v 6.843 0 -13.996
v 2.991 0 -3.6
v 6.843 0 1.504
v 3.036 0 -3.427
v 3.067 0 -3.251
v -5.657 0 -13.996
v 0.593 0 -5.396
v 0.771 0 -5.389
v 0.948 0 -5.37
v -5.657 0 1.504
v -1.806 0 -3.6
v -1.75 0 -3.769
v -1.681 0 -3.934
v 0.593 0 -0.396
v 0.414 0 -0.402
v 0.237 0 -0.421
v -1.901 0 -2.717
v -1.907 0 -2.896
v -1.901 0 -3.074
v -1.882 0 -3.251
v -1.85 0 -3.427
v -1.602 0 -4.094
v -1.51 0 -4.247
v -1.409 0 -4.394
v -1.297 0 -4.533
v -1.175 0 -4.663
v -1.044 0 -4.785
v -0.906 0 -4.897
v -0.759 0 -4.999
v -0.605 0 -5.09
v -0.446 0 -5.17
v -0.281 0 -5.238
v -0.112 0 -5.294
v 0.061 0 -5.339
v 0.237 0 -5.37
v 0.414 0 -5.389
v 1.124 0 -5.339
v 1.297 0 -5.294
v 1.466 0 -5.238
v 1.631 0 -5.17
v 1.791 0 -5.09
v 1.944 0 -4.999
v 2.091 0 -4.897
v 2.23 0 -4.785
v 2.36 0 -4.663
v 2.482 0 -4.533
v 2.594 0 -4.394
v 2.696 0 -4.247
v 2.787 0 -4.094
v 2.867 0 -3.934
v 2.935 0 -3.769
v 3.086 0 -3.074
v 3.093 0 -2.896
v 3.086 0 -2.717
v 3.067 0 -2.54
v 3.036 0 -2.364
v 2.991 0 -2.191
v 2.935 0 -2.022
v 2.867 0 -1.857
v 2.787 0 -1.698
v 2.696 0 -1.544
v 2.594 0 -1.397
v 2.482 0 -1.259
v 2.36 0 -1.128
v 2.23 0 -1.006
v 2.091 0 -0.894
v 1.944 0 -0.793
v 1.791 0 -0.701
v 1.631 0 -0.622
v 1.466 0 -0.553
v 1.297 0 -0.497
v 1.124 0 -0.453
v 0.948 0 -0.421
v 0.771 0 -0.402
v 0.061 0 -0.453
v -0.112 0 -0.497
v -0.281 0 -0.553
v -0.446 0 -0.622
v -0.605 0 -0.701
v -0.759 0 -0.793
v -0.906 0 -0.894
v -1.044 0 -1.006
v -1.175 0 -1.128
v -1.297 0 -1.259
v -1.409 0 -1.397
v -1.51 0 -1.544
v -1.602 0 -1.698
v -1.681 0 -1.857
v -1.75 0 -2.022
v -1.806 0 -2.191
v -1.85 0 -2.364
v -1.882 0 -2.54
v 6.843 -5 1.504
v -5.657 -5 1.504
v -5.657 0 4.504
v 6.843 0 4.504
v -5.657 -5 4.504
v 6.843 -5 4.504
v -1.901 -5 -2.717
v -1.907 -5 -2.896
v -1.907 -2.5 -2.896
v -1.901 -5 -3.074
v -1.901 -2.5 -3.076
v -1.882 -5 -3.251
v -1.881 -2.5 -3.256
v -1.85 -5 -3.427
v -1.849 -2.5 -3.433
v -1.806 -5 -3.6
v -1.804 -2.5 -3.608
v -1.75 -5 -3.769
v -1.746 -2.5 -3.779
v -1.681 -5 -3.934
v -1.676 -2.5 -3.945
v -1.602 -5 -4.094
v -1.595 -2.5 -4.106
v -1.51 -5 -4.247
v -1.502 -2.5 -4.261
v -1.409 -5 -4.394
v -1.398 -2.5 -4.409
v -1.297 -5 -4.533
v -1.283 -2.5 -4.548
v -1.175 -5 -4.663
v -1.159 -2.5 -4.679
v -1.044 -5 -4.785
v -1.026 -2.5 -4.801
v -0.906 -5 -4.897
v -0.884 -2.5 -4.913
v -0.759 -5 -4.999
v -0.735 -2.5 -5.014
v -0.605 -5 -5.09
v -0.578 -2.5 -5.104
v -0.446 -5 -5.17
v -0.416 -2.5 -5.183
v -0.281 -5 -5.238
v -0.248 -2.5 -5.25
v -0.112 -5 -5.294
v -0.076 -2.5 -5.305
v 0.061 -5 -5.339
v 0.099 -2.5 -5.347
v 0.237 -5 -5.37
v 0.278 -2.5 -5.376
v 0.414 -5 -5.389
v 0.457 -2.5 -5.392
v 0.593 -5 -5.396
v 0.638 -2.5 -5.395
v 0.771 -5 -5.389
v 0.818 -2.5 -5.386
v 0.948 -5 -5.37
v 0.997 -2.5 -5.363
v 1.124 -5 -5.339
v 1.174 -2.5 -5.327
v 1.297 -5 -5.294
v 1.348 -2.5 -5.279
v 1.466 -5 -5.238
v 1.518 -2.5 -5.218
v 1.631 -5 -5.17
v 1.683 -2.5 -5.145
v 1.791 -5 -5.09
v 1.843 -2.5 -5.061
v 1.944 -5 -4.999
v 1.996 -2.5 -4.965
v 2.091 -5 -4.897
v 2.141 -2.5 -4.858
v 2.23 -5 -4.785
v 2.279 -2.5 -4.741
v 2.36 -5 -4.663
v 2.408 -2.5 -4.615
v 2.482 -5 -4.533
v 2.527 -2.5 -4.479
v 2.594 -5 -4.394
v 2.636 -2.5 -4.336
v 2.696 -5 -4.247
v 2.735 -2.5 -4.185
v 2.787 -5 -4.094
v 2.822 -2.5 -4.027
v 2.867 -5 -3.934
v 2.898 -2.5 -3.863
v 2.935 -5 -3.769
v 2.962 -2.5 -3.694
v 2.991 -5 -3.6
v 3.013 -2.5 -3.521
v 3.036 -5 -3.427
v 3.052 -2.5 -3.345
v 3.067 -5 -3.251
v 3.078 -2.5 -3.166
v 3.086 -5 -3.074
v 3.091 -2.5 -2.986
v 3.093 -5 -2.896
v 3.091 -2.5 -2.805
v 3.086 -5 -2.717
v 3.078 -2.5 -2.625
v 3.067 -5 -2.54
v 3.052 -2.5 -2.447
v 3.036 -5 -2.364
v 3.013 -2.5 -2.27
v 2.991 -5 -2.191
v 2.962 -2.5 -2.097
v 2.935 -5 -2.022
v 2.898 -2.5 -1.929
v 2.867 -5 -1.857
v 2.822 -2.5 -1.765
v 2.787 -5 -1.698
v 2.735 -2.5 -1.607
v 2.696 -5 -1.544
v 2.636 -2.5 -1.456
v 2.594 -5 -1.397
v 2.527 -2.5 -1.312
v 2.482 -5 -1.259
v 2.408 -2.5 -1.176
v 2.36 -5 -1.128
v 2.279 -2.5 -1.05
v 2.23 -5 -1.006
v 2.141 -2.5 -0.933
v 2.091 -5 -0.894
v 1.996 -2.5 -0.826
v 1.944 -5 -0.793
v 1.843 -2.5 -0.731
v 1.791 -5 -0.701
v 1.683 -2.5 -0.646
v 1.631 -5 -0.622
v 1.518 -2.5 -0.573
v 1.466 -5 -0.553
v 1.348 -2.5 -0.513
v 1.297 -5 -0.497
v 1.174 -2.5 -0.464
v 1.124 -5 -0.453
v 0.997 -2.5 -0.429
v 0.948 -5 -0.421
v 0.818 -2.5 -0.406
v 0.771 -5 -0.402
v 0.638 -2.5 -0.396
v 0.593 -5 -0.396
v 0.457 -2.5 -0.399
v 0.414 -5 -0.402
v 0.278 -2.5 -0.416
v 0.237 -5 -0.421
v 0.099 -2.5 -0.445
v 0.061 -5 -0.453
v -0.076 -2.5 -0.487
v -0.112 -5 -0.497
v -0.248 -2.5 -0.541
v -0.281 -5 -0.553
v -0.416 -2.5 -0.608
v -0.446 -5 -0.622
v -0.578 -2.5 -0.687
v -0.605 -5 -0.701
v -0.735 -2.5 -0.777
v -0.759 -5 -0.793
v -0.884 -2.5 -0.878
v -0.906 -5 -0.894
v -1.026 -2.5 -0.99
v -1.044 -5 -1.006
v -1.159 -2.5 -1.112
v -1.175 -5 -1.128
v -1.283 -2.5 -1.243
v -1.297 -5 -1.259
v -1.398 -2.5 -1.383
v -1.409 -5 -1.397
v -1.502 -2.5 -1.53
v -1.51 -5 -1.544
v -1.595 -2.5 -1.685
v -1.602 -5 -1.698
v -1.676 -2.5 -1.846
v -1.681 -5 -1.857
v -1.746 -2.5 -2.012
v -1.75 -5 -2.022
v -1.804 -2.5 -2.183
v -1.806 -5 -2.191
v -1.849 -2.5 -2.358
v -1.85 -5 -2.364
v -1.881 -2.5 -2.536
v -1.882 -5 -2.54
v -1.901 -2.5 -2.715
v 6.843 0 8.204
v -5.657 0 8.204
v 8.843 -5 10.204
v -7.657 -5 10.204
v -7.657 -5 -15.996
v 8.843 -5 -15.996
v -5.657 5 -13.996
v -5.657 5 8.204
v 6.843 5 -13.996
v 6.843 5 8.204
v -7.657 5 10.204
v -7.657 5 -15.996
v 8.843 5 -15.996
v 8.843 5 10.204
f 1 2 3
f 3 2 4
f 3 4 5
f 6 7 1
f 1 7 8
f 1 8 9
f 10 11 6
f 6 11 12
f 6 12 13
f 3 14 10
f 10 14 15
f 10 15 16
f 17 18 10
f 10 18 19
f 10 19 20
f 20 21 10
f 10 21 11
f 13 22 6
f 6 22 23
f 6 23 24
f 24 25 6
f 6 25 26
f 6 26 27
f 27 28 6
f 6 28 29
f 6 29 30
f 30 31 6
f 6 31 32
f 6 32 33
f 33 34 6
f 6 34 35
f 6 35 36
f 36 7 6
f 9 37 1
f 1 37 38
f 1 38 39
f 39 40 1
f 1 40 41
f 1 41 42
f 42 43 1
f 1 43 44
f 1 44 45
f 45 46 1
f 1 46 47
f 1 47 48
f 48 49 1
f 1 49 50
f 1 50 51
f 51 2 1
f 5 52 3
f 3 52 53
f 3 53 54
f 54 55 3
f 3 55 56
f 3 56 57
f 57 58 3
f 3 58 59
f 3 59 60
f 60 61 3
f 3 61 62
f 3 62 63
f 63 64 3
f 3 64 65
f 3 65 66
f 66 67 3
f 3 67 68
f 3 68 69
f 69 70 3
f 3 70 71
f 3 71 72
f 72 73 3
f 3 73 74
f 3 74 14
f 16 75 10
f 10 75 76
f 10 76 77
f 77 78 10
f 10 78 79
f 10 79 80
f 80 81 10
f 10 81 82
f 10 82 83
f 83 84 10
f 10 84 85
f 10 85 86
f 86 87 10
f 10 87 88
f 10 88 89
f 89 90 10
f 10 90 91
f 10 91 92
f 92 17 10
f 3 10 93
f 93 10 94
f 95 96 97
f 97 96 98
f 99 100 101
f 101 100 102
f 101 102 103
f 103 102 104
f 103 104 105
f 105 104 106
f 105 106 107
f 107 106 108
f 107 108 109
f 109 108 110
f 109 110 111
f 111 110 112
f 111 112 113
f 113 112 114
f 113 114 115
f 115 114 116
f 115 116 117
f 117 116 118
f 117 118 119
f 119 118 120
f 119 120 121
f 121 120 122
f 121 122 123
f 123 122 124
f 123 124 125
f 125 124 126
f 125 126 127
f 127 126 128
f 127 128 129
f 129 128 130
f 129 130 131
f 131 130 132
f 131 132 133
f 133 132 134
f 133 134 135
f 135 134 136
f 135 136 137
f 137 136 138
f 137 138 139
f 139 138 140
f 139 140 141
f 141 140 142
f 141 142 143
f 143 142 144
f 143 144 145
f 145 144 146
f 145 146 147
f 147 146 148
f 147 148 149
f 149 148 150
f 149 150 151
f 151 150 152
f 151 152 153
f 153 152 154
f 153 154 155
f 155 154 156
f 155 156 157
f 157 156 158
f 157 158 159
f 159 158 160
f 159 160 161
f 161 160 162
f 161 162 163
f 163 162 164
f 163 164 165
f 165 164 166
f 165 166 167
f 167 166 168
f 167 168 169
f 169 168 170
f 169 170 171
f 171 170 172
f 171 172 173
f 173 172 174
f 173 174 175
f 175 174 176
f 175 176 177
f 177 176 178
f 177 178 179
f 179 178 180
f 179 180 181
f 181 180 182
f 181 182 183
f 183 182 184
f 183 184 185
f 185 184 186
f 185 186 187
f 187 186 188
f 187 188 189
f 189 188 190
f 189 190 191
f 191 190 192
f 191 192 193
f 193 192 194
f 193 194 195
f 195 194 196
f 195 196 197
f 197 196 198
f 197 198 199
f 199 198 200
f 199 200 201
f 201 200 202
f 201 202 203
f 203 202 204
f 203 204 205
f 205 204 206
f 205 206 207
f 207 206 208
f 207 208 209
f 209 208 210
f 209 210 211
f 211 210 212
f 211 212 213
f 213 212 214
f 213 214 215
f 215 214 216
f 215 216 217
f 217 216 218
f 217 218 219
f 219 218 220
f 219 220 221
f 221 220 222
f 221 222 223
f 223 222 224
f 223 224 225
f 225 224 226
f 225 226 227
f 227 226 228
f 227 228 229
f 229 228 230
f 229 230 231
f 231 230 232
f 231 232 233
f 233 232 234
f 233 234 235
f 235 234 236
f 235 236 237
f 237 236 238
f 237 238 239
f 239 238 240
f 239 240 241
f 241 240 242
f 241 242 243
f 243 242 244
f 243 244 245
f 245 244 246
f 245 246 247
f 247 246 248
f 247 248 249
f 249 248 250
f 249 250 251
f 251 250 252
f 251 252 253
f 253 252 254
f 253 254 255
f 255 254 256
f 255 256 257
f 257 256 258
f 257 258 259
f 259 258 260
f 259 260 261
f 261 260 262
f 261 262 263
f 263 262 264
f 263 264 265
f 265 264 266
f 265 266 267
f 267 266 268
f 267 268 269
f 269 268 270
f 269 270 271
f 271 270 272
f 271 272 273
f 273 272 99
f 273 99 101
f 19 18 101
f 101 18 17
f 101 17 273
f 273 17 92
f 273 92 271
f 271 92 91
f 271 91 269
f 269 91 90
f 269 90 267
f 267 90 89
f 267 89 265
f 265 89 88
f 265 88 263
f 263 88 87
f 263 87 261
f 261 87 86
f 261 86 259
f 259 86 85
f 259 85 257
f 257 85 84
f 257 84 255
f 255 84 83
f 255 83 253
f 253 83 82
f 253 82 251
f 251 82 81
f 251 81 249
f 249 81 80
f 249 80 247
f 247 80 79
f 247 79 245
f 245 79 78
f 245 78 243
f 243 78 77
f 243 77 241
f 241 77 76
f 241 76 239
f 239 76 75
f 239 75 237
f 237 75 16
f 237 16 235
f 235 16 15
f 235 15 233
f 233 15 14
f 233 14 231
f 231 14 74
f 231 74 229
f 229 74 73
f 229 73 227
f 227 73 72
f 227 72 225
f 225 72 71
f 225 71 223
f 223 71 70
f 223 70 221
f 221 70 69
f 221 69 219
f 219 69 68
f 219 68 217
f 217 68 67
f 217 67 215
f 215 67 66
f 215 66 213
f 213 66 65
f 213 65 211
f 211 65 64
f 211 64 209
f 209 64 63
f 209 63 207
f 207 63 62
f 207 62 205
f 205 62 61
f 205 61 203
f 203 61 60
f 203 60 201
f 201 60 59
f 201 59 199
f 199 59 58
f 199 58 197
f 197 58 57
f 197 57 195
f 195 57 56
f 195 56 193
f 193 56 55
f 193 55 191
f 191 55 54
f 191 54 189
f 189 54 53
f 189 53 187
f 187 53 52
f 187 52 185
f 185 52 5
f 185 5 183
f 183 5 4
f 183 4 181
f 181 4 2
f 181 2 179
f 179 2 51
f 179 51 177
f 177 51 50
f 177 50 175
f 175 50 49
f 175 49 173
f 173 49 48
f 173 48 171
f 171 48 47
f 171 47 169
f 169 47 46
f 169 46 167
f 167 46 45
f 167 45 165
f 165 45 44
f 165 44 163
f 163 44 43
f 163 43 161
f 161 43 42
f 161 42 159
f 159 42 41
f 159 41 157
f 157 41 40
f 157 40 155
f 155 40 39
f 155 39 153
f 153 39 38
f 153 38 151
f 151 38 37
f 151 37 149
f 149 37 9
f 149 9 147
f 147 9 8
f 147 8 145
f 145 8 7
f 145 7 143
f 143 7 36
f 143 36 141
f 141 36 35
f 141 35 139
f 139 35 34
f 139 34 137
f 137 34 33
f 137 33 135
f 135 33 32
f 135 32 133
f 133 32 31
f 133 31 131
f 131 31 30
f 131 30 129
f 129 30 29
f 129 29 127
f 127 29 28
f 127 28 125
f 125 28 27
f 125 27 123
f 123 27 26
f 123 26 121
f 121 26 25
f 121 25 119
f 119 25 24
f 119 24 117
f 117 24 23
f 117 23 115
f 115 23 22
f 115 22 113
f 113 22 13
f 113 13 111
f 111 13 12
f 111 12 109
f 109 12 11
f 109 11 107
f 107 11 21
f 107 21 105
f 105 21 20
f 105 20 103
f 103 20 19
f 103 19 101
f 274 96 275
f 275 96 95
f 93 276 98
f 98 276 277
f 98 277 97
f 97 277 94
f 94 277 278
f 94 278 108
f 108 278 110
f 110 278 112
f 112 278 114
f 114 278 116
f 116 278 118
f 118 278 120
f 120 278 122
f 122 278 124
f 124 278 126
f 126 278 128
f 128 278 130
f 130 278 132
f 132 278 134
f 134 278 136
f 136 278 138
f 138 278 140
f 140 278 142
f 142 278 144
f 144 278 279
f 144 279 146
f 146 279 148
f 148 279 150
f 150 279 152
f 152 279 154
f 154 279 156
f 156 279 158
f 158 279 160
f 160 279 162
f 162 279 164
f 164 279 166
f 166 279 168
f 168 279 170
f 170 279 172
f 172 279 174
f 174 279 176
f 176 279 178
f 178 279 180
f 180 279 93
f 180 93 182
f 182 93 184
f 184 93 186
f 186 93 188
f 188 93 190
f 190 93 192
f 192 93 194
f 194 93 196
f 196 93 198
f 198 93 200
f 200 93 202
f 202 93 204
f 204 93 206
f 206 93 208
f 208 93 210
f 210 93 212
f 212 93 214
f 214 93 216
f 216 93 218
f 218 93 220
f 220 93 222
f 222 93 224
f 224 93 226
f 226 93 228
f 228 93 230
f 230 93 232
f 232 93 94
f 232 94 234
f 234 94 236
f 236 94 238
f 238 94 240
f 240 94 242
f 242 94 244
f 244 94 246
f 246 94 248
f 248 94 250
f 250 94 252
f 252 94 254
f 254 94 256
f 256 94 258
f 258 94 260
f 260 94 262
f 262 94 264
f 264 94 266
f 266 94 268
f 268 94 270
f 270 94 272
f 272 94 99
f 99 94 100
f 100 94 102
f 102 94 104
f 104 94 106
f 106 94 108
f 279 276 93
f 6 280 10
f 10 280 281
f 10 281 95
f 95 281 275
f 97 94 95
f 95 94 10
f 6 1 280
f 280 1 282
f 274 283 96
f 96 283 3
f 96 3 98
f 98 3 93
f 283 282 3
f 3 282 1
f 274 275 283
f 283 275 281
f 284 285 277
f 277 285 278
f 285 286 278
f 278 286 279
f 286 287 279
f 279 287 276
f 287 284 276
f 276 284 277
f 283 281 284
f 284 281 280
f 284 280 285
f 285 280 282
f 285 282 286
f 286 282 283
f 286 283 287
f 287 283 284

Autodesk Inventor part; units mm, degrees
ref_plane "YZ Plane" through (0, 0, 0) normal (1, 0, 0) x (0, 1, 0)
ref_plane "XZ Plane" through (0, 0, 0) normal (0, 1, 0) x (-1, 0, 0)
ref_plane "XY Plane" through (0, 0, 0) normal (0, 0, 1) x (1, 0, 0)
sketch "スケッチ1" plane through (0, 0, 0) normal (0, 1, 0) x (-1, 0, 0)
  line L0 (7.6573, 10.2043) -> (-8.8427, 10.2043)
  line L1 (-8.8427, 10.2043) -> (-8.8427, -15.9957)
  line L2 (-8.8427, -15.9957) -> (7.6573, -15.9957)
  line L3 (7.6573, -15.9957) -> (7.6573, 10.2043)
  line L4 (5.6573, 8.2043) -> (-6.8427, 8.2043)
  line L5 (-6.8427, 8.2043) -> (-6.8427, -13.9957)
  line L6 (-6.8427, -13.9957) -> (5.6573, -13.9957)
  line L7 (5.6573, -13.9957) -> (5.6573, 8.2043)
  line L8 (5.6573, 8.2043) -> (0.5388, 8.2043)
  line L9 (0.5388, -13.9957) -> (5.6573, -13.9957)
  line L10 (5.6573, -13.9957) -> (5.6573, 8.2043)
  circle A0 centre (-0.5927, -2.8957) radius 2.5
  line L11 (-6.8427, 4.5043) -> (5.6573, 4.5043)
  line L12 (5.6573, 4.5043) -> (5.6573, 1.5043)
  line L13 (5.6573, 1.5043) -> (-6.8427, 1.5043)
  line L14 (-6.8427, 1.5043) -> (-6.8427, 4.5043)
  point P0 (0, 0)
  dimension "d0" = 12.5
  dimension "d1" = 22.2
  dimension "d2" = 2
  dimension "d3" = 2
  dimension "d4" = 2
  dimension "d5" = 2
  dimension "d6" = 3.7
  dimension "d7" = 3
  dimension "d8" = 5
  dimension "d9" = 6.25
  dimension "d11" = 13.1
  dimension "d12" = 13.1
  dimension "d17" = 6.25
extrude "押し出し1" add sketch "スケッチ1" along normal blind 5 contours L3 L2 L1 L0
extrude "押し出し2" add sketch "スケッチ1" against normal blind 5 contours L3 L2 L1 L0 | L7 L11 L5 L4 | L7 L6 L5 L13
sketch "スケッチ2" plane through (0, 5, 0) normal (0, 1, 0) x (1, 0, 0)
  line L0 (8.8427, -10.2043) -> (8.8427, 15.9957) projected
  line L1 (8.8427, 15.9957) -> (-7.6728, 15.9957)
  line L2 (-7.6728, 15.9957) -> (-7.6728, 14.001)
  line L3 (-7.6728, 14.001) -> (8.8427, 14.001)
  line L4 (8.8427, 14.001) -> (8.8427, 15.9957)
  point P0 (0, 0)
properties part number "armpart3"
